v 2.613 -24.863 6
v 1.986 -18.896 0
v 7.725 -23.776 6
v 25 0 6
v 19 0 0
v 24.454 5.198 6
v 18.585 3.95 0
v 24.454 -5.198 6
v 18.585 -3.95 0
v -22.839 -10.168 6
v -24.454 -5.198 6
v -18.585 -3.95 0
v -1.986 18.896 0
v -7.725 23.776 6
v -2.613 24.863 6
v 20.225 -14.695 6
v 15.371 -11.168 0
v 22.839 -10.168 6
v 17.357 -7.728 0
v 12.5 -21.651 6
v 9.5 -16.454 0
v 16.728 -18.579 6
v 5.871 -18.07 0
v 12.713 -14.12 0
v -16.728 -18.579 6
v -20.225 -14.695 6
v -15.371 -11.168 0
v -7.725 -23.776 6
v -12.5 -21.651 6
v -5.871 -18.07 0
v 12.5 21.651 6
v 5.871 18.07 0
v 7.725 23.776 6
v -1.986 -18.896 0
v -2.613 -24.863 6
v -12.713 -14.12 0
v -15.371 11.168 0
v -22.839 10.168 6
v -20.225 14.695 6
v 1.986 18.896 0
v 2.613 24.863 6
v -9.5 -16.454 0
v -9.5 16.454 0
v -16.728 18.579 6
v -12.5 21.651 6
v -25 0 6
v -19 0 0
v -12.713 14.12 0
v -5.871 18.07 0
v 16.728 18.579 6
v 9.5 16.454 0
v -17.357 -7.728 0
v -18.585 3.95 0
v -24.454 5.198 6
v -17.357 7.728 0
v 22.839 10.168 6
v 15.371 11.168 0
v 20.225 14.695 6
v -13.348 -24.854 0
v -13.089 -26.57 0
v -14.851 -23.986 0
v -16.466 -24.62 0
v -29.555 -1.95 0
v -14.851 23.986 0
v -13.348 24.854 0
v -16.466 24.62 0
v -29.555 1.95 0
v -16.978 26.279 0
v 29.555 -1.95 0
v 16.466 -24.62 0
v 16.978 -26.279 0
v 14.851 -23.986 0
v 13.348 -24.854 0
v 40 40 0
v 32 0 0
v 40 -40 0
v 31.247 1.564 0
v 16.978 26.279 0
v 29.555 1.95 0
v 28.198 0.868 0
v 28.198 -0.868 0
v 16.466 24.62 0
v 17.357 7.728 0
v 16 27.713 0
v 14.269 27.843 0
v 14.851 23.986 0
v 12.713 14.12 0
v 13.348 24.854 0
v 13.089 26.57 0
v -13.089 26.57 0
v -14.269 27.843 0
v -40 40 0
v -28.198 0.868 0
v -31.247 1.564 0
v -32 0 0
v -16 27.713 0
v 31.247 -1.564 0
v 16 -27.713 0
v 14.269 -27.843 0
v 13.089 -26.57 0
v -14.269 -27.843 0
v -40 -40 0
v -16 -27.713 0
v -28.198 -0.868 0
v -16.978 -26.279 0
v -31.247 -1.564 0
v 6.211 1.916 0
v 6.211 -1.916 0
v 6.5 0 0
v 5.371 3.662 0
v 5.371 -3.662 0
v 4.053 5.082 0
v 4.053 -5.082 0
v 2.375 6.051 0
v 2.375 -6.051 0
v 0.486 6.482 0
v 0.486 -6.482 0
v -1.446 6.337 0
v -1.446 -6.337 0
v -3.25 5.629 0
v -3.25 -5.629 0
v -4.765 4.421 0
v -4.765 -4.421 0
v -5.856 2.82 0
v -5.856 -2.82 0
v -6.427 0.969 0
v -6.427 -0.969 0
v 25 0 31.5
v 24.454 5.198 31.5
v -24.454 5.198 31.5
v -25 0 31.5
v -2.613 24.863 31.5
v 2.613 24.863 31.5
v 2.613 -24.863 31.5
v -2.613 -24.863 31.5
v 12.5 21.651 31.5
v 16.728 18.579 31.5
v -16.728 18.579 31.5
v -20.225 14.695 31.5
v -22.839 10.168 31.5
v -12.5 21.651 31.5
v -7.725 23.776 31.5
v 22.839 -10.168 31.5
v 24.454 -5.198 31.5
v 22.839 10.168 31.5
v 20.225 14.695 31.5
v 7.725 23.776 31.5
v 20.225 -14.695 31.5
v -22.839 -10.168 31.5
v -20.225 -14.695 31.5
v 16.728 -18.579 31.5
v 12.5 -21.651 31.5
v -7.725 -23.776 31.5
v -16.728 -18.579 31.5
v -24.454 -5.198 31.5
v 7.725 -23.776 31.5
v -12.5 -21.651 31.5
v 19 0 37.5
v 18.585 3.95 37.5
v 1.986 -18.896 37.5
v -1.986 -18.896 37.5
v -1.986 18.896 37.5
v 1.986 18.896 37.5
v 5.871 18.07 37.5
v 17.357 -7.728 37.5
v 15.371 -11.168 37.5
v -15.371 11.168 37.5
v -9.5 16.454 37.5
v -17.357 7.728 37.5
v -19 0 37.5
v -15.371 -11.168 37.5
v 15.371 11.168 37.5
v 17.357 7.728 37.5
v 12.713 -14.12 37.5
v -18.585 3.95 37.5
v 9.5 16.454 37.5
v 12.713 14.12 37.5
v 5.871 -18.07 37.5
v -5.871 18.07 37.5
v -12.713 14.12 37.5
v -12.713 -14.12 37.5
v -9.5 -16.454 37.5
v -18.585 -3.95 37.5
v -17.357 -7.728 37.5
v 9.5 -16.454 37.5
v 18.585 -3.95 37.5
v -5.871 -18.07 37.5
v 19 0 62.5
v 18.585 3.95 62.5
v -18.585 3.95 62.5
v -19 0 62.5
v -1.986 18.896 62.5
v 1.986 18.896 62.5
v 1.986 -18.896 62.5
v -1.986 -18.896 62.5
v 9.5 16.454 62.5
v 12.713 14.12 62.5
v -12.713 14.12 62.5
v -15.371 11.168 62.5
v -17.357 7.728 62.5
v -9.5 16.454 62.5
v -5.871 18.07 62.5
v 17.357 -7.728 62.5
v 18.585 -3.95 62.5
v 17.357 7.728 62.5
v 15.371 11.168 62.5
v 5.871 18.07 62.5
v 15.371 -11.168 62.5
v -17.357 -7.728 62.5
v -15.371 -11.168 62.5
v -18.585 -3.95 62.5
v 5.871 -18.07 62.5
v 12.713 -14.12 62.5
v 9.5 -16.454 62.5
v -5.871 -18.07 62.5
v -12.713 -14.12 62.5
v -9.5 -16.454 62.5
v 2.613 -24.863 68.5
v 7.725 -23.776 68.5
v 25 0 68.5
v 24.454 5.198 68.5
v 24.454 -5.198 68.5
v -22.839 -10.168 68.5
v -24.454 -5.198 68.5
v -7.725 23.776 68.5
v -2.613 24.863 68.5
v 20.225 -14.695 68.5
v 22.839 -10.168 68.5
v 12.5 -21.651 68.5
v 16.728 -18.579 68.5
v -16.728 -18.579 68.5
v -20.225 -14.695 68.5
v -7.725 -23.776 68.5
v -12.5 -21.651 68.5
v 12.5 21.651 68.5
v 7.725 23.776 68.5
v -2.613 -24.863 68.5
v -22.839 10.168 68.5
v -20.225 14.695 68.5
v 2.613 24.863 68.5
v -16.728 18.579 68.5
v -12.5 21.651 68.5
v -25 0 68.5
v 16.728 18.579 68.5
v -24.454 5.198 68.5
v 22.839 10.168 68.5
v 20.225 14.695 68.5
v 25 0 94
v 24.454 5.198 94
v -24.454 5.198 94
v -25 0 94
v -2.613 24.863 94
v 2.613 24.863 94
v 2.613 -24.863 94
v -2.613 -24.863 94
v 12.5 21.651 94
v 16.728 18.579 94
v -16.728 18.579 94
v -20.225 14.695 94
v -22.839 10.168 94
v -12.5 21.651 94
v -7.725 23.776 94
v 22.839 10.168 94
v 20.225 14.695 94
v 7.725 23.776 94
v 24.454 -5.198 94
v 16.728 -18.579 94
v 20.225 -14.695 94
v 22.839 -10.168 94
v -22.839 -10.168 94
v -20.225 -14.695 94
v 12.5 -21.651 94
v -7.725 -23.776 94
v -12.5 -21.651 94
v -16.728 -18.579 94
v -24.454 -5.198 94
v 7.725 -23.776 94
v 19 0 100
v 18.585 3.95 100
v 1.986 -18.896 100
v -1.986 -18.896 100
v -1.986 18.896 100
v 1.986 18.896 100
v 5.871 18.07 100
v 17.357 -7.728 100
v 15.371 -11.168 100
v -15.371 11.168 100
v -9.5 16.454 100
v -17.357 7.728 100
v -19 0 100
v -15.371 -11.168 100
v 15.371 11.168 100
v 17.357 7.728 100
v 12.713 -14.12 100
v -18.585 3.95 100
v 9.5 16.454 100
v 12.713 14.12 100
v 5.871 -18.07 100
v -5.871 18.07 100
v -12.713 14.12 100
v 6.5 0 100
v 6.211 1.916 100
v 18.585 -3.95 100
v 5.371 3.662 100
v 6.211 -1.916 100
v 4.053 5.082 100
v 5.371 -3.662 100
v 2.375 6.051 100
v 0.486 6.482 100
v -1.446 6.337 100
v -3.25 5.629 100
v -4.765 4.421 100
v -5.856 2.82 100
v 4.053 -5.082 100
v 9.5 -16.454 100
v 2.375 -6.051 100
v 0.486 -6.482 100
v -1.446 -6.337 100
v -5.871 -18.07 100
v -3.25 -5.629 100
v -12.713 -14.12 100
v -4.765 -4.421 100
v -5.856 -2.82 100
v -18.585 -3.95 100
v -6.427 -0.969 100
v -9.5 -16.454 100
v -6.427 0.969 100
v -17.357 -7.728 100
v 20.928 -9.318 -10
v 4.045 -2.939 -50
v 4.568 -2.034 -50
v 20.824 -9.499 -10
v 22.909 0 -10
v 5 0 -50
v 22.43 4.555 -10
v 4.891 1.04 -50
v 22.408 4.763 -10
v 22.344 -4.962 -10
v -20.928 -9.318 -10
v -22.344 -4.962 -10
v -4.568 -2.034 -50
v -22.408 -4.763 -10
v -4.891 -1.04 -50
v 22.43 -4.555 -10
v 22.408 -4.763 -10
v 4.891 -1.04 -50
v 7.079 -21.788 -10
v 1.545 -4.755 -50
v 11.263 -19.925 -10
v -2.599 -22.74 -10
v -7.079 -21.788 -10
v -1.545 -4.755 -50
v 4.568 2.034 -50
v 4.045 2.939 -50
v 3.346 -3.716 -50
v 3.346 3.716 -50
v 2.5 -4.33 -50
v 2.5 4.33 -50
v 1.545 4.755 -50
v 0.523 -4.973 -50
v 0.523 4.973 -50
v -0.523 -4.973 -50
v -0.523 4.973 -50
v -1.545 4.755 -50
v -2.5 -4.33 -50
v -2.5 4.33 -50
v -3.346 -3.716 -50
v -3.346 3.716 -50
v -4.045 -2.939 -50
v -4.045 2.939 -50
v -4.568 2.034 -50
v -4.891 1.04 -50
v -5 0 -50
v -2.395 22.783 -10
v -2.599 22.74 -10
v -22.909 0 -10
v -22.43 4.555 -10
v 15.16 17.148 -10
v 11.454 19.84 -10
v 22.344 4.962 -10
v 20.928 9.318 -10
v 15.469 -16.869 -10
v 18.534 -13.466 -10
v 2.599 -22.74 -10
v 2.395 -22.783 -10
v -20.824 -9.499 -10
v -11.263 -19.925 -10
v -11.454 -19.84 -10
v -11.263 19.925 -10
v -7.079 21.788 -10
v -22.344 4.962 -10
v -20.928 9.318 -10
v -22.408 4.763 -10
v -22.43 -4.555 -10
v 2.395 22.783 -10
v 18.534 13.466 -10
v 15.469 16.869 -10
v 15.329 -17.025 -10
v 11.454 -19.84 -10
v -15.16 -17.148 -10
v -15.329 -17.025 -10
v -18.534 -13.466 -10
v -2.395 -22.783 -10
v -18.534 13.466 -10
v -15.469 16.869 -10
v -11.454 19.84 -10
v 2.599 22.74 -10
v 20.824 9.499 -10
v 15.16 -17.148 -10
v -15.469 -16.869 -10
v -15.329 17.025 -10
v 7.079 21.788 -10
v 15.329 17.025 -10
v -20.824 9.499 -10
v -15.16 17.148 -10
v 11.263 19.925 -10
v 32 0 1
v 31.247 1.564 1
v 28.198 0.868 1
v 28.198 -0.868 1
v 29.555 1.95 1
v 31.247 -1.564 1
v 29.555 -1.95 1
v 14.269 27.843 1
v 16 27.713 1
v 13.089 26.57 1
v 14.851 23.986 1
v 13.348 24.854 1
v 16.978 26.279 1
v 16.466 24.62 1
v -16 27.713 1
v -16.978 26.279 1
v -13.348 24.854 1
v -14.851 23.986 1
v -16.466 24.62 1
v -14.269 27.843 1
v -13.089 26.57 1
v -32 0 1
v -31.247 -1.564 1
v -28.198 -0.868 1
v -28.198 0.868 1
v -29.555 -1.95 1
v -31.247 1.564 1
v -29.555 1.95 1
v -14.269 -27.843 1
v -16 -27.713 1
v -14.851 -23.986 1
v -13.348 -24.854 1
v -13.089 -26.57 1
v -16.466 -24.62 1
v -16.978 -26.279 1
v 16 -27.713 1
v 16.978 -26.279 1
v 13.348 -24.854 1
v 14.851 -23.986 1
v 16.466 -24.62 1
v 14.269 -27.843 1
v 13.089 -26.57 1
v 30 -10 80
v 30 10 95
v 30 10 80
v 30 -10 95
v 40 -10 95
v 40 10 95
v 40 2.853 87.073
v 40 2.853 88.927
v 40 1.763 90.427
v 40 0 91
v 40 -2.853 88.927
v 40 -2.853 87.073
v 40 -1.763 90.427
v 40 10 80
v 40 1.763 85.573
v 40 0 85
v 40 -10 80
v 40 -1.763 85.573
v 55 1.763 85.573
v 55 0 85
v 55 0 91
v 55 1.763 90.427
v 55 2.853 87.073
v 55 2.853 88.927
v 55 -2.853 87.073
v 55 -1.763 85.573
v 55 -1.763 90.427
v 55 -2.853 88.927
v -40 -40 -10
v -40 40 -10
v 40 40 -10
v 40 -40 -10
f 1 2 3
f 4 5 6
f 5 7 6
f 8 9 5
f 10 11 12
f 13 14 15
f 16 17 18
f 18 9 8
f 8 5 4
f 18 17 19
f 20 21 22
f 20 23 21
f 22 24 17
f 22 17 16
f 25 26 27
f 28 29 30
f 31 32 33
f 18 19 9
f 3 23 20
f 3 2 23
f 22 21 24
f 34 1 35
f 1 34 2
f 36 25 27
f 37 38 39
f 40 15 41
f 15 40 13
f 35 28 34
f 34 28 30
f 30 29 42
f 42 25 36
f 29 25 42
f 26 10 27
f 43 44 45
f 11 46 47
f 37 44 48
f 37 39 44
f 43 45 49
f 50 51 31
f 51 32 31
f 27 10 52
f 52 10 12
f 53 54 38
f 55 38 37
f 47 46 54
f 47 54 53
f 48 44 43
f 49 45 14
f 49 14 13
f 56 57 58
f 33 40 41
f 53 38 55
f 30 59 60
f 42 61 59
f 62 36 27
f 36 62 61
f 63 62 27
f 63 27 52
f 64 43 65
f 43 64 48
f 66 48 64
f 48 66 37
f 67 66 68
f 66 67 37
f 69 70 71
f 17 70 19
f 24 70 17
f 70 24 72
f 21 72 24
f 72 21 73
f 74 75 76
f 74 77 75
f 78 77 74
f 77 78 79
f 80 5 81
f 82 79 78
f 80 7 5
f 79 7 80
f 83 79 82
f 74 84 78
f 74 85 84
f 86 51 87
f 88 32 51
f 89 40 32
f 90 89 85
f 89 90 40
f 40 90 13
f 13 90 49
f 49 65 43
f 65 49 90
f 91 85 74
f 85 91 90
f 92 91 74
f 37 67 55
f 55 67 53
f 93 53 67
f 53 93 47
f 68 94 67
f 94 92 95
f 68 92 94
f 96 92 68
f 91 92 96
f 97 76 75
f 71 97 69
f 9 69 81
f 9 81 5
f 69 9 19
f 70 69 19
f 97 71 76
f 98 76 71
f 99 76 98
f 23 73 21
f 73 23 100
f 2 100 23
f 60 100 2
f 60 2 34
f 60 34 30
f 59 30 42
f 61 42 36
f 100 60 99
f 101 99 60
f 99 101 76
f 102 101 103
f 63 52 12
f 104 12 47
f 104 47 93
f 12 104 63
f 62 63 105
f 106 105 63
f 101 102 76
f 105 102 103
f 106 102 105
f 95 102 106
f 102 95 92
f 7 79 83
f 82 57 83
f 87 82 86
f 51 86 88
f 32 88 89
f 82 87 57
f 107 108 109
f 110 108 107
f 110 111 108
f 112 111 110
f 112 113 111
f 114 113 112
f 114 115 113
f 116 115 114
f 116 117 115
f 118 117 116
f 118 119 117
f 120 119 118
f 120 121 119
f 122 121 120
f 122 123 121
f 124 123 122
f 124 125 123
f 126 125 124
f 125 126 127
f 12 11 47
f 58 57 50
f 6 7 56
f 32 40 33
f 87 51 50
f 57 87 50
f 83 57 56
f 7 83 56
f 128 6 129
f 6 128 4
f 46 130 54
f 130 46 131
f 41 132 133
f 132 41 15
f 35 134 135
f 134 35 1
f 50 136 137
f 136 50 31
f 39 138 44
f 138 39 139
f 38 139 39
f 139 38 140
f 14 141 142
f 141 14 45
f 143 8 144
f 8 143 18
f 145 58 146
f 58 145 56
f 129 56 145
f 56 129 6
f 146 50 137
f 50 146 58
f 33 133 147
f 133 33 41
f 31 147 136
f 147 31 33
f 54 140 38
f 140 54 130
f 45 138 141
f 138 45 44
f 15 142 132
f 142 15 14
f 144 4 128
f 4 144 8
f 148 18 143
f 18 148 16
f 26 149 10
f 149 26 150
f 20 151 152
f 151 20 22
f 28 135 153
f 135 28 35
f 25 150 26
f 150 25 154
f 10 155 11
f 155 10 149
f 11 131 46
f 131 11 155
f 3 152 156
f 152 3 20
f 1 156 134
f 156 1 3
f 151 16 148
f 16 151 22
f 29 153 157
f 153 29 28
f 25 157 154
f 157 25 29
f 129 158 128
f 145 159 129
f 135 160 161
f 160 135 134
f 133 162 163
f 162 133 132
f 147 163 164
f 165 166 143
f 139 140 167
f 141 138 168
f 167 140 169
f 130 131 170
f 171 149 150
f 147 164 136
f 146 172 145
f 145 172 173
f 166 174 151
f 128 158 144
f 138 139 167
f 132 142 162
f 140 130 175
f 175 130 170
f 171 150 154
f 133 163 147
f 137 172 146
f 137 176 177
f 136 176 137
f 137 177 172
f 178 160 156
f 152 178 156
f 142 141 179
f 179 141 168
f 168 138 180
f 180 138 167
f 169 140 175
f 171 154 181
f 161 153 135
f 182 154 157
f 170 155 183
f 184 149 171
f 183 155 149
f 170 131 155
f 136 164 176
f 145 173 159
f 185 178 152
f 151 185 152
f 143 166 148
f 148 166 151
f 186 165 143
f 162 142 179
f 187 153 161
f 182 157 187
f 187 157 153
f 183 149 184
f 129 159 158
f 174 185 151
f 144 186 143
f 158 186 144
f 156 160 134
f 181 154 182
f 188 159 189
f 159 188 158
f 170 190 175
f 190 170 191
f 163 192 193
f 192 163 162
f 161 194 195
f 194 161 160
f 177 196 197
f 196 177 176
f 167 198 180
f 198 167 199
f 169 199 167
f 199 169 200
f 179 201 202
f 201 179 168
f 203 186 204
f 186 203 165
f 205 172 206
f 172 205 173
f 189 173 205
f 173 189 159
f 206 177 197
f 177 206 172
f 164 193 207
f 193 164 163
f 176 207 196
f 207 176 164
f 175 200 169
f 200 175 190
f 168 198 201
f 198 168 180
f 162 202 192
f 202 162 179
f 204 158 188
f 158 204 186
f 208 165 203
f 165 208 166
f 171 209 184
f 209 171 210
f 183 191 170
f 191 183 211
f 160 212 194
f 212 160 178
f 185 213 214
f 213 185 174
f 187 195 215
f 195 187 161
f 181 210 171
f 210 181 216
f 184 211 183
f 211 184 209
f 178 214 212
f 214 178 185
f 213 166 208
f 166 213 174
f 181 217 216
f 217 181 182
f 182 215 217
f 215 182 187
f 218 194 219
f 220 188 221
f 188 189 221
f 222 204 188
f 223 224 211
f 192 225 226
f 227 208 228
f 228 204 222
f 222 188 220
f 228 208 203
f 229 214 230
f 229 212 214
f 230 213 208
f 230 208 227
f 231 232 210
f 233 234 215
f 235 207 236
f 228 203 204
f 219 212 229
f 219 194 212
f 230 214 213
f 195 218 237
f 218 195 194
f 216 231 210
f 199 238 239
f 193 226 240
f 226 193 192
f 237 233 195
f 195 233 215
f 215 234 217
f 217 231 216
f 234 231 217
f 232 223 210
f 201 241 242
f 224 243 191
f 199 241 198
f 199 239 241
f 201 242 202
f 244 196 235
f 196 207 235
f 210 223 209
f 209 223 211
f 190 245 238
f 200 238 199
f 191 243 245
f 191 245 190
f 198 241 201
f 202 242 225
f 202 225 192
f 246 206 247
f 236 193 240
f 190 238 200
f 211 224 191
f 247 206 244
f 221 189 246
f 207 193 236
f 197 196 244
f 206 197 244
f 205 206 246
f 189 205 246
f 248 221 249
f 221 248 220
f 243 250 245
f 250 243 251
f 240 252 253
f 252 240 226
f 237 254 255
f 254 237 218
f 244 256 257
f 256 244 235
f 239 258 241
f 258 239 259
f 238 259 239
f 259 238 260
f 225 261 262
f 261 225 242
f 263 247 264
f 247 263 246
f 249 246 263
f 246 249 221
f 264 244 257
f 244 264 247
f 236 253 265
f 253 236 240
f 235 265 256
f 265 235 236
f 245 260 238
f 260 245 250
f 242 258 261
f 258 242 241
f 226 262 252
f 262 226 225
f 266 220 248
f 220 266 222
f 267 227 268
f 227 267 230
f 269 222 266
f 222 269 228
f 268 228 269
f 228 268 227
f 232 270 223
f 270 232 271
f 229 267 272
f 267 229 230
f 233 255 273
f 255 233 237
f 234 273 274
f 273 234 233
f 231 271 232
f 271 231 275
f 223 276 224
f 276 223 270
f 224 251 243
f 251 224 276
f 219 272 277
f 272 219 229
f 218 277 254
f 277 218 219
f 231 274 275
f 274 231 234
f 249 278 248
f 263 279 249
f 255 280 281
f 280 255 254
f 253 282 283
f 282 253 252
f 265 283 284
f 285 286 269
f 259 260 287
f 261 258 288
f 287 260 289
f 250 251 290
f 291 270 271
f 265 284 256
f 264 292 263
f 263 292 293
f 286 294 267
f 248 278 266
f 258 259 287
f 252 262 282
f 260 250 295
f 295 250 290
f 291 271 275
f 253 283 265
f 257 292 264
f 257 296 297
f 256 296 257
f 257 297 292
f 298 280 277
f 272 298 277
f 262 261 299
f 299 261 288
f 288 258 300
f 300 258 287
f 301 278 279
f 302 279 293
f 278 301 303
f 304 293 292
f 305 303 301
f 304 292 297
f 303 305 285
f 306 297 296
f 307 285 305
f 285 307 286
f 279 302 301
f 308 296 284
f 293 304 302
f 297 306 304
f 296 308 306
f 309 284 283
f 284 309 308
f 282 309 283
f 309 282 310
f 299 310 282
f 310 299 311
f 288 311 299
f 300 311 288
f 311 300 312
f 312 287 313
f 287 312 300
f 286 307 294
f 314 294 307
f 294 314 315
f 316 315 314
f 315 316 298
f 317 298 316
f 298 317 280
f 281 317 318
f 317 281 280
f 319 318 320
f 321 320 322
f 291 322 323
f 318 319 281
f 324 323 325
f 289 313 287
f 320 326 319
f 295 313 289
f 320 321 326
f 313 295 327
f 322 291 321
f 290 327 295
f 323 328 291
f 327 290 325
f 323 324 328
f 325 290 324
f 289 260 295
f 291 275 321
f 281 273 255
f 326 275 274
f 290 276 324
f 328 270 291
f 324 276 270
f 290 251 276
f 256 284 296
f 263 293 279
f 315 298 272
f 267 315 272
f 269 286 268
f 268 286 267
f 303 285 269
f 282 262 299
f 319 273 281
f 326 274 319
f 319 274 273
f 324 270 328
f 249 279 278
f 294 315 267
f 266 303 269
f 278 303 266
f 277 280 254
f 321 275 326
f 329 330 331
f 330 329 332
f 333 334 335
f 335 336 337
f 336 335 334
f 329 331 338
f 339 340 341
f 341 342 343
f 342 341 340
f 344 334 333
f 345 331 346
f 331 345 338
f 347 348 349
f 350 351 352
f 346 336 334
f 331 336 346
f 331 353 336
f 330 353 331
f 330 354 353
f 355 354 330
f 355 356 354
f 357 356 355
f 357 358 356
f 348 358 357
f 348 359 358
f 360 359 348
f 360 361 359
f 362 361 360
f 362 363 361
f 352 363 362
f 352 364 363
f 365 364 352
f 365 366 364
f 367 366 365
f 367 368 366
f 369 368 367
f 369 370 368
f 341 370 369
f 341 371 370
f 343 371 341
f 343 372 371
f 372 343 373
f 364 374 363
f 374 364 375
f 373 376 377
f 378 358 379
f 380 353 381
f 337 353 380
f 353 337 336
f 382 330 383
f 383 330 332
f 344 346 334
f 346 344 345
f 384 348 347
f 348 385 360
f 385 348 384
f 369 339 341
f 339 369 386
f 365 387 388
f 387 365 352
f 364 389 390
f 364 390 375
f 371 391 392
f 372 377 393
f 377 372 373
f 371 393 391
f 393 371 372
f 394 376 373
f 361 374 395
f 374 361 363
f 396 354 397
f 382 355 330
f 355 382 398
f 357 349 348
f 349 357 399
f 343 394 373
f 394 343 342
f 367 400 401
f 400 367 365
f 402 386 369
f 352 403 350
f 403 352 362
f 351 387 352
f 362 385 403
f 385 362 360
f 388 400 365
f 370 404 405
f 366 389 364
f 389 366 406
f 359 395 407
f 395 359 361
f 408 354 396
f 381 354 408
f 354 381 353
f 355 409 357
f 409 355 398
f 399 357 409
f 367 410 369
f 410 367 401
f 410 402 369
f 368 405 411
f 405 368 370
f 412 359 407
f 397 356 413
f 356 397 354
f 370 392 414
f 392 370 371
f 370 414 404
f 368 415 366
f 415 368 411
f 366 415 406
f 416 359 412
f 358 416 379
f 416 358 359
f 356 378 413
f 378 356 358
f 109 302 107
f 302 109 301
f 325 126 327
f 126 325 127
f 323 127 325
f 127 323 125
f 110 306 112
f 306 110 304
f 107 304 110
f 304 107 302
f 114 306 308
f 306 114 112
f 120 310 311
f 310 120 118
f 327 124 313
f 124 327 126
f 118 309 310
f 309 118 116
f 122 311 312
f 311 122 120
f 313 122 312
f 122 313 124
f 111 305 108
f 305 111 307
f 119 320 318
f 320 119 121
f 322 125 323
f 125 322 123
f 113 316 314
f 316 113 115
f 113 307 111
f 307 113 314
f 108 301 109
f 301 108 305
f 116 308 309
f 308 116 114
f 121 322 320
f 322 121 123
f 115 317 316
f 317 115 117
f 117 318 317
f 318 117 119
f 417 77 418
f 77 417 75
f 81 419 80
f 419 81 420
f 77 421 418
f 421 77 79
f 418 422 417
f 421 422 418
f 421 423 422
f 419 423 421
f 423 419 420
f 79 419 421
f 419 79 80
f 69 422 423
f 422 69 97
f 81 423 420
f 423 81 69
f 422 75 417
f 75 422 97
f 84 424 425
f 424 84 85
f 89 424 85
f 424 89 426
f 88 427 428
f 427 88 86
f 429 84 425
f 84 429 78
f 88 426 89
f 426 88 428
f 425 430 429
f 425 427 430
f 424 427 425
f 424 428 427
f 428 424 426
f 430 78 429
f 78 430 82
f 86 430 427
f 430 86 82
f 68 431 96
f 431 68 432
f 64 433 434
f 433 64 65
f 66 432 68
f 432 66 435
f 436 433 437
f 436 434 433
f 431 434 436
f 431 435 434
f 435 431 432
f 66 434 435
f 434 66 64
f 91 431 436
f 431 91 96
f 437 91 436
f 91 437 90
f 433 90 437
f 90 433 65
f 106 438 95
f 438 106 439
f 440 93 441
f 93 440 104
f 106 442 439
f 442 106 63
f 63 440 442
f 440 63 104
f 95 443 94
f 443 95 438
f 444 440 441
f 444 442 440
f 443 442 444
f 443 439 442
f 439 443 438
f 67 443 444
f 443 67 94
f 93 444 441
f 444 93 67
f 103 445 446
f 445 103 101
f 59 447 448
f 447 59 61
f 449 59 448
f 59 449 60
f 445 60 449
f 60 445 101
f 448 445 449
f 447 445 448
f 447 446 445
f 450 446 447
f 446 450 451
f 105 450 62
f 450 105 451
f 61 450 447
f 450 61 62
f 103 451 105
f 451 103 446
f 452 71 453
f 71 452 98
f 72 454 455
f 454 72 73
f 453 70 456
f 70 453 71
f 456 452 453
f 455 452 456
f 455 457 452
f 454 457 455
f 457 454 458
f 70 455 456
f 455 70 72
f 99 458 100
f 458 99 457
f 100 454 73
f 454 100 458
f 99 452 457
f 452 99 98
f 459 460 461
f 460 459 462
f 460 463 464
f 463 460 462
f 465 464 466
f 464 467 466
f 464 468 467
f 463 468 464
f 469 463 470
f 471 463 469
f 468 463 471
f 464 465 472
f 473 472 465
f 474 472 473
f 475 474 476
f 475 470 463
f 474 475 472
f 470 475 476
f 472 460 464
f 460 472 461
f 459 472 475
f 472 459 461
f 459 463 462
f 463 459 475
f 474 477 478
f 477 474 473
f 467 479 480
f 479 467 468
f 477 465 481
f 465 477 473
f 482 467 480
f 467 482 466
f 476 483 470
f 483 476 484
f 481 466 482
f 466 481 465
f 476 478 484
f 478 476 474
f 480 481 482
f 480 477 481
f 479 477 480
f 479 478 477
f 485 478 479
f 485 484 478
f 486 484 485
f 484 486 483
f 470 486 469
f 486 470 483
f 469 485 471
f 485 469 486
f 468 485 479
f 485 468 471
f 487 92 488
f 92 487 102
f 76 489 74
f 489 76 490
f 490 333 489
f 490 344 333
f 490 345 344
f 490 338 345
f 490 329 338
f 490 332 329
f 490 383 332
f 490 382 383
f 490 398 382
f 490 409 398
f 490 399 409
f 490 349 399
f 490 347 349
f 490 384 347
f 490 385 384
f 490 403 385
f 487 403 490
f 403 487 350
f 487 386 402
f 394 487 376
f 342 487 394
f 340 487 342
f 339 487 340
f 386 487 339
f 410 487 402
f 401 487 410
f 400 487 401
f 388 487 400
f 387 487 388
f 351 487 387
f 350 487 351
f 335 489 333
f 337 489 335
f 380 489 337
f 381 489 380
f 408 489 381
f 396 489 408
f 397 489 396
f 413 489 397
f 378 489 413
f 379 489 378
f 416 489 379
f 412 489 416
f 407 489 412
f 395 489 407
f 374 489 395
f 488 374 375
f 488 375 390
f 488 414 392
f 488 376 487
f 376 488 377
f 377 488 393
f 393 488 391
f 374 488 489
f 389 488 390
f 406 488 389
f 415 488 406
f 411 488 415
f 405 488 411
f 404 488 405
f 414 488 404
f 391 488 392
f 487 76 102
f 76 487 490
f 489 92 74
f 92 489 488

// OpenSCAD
// Conversión de pulgadas a mm
inch = 25.4;
clearance = 0.5;

// Parámetros principales del cuerpo
body_h = 100;
body_d = 50;
body_c = 25;
chamfer = 6;
chamfer_d = body_d - 2 * chamfer;
grip_h = (body_h - 4 * chamfer - body_c) / 2;
axle_d = 13;

// Parámetros del cono
throat_d = 10;
area_ratio = 30;
exit_d = throat_d * sqrt(area_ratio);
nozzle_length = 50;

// Inyectores
num_injectors = 8;
injector_d = 3;
injector_h = 5;
injector_radius = body_d / 2 + 2;

// --------------------- Módulos ---------------------

module body() {
    // Parte inferior
    cylinder(h=chamfer, d1=body_d - 2 * chamfer, d2=body_d);
    translate([0, 0, chamfer])
        cylinder(h=grip_h, d=body_d);
    translate([0, 0, chamfer + grip_h])
        cylinder(h=chamfer, d1=body_d, d2=chamfer_d);

    // Parte central
    translate([0, 0, chamfer * 2 + grip_h])
        cylinder(h=body_c, d=chamfer_d);

    // Parte superior
    translate([0, 0, chamfer * 2 + grip_h + body_c])
        cylinder(h=chamfer, d1=chamfer_d, d2=body_d);
    translate([0, 0, chamfer * 3 + grip_h + body_c])
        cylinder(h=grip_h, d=body_d);
    translate([0, 0, chamfer * 3 + grip_h * 2 + body_c])
        cylinder(h=chamfer, d1=body_d, d2=chamfer_d);
}

module nozzle_cone() {
    translate([0, 0, -nozzle_length])
        cylinder(h=nozzle_length, d1=throat_d, d2=exit_d);
}

module injectors(n = num_injectors) {
    for (i = [0:n-1]) {
        angle = 360 / n * i;
        rotate([0, 0, angle])
            translate([injector_radius, 0, body_h - injector_h])
                cylinder(h=injector_h, d=injector_d);
    }
}

module mounting_flange() {
    flange_thickness = 5;
    flange_diameter = body_d + 20;
    hole_d = 4;
    num_holes = 6;
    hole_radius = (flange_diameter - 10) / 2;

    // Disco base
    cylinder(h=flange_thickness, d=flange_diameter);

    // Agujeros
    for (i = [0:num_holes - 1]) {
        angle = 360 / num_holes * i;
        rotate([0, 0, angle])
        translate([hole_radius, 0, 0])
        cylinder(h=flange_thickness + 1, d=hole_d); // +1 para asegurarse perforación
    }
}

translate([0, 0, -5])
difference() {
    mounting_flange();
    // Agujeros incluidos dentro del módulo
}

module visual_bolts(n = 6) {
    bolt_d = 3;
    bolt_h = 4;
    radius = (body_d + 10) / 2;

    for (i = [0:n-1]) {
        angle = 360 / n * i;
        rotate([0, 0, angle])
        translate([radius, 0, -bolt_h])
            cylinder(h=bolt_h, d=bolt_d);
    }
}

module valve_box() {
    box_w = 20;
    box_h = 15;
    box_d = 10;
    translate([body_d / 2 + 5, -box_w / 2, body_h - 20])
        cube([box_d, box_w, box_h]);
}

module input_pipe() {
    translate([body_d / 2 + 5 + 10, 0, body_h - 12])
        rotate([0, 90, 0])
        cylinder(h=15, d=6);
}

module base_plate() {
    translate([-40, -40, -10])
        cube([80, 80, 10]);
}


// --------------------- Ensamblaje ---------------------

union() {
    // Cuerpo y cono + perforaciones
    difference() {
        union() {
            body();
            nozzle_cone();
        }
        // Eje central
        cylinder(h=body_h + nozzle_length, d=axle_d);
        // Inyectores
        injectors();
    }

    // Componentes mecánicos adicionales
    visual_bolts();
    valve_box();
    input_pipe();
    base_plate();
}
